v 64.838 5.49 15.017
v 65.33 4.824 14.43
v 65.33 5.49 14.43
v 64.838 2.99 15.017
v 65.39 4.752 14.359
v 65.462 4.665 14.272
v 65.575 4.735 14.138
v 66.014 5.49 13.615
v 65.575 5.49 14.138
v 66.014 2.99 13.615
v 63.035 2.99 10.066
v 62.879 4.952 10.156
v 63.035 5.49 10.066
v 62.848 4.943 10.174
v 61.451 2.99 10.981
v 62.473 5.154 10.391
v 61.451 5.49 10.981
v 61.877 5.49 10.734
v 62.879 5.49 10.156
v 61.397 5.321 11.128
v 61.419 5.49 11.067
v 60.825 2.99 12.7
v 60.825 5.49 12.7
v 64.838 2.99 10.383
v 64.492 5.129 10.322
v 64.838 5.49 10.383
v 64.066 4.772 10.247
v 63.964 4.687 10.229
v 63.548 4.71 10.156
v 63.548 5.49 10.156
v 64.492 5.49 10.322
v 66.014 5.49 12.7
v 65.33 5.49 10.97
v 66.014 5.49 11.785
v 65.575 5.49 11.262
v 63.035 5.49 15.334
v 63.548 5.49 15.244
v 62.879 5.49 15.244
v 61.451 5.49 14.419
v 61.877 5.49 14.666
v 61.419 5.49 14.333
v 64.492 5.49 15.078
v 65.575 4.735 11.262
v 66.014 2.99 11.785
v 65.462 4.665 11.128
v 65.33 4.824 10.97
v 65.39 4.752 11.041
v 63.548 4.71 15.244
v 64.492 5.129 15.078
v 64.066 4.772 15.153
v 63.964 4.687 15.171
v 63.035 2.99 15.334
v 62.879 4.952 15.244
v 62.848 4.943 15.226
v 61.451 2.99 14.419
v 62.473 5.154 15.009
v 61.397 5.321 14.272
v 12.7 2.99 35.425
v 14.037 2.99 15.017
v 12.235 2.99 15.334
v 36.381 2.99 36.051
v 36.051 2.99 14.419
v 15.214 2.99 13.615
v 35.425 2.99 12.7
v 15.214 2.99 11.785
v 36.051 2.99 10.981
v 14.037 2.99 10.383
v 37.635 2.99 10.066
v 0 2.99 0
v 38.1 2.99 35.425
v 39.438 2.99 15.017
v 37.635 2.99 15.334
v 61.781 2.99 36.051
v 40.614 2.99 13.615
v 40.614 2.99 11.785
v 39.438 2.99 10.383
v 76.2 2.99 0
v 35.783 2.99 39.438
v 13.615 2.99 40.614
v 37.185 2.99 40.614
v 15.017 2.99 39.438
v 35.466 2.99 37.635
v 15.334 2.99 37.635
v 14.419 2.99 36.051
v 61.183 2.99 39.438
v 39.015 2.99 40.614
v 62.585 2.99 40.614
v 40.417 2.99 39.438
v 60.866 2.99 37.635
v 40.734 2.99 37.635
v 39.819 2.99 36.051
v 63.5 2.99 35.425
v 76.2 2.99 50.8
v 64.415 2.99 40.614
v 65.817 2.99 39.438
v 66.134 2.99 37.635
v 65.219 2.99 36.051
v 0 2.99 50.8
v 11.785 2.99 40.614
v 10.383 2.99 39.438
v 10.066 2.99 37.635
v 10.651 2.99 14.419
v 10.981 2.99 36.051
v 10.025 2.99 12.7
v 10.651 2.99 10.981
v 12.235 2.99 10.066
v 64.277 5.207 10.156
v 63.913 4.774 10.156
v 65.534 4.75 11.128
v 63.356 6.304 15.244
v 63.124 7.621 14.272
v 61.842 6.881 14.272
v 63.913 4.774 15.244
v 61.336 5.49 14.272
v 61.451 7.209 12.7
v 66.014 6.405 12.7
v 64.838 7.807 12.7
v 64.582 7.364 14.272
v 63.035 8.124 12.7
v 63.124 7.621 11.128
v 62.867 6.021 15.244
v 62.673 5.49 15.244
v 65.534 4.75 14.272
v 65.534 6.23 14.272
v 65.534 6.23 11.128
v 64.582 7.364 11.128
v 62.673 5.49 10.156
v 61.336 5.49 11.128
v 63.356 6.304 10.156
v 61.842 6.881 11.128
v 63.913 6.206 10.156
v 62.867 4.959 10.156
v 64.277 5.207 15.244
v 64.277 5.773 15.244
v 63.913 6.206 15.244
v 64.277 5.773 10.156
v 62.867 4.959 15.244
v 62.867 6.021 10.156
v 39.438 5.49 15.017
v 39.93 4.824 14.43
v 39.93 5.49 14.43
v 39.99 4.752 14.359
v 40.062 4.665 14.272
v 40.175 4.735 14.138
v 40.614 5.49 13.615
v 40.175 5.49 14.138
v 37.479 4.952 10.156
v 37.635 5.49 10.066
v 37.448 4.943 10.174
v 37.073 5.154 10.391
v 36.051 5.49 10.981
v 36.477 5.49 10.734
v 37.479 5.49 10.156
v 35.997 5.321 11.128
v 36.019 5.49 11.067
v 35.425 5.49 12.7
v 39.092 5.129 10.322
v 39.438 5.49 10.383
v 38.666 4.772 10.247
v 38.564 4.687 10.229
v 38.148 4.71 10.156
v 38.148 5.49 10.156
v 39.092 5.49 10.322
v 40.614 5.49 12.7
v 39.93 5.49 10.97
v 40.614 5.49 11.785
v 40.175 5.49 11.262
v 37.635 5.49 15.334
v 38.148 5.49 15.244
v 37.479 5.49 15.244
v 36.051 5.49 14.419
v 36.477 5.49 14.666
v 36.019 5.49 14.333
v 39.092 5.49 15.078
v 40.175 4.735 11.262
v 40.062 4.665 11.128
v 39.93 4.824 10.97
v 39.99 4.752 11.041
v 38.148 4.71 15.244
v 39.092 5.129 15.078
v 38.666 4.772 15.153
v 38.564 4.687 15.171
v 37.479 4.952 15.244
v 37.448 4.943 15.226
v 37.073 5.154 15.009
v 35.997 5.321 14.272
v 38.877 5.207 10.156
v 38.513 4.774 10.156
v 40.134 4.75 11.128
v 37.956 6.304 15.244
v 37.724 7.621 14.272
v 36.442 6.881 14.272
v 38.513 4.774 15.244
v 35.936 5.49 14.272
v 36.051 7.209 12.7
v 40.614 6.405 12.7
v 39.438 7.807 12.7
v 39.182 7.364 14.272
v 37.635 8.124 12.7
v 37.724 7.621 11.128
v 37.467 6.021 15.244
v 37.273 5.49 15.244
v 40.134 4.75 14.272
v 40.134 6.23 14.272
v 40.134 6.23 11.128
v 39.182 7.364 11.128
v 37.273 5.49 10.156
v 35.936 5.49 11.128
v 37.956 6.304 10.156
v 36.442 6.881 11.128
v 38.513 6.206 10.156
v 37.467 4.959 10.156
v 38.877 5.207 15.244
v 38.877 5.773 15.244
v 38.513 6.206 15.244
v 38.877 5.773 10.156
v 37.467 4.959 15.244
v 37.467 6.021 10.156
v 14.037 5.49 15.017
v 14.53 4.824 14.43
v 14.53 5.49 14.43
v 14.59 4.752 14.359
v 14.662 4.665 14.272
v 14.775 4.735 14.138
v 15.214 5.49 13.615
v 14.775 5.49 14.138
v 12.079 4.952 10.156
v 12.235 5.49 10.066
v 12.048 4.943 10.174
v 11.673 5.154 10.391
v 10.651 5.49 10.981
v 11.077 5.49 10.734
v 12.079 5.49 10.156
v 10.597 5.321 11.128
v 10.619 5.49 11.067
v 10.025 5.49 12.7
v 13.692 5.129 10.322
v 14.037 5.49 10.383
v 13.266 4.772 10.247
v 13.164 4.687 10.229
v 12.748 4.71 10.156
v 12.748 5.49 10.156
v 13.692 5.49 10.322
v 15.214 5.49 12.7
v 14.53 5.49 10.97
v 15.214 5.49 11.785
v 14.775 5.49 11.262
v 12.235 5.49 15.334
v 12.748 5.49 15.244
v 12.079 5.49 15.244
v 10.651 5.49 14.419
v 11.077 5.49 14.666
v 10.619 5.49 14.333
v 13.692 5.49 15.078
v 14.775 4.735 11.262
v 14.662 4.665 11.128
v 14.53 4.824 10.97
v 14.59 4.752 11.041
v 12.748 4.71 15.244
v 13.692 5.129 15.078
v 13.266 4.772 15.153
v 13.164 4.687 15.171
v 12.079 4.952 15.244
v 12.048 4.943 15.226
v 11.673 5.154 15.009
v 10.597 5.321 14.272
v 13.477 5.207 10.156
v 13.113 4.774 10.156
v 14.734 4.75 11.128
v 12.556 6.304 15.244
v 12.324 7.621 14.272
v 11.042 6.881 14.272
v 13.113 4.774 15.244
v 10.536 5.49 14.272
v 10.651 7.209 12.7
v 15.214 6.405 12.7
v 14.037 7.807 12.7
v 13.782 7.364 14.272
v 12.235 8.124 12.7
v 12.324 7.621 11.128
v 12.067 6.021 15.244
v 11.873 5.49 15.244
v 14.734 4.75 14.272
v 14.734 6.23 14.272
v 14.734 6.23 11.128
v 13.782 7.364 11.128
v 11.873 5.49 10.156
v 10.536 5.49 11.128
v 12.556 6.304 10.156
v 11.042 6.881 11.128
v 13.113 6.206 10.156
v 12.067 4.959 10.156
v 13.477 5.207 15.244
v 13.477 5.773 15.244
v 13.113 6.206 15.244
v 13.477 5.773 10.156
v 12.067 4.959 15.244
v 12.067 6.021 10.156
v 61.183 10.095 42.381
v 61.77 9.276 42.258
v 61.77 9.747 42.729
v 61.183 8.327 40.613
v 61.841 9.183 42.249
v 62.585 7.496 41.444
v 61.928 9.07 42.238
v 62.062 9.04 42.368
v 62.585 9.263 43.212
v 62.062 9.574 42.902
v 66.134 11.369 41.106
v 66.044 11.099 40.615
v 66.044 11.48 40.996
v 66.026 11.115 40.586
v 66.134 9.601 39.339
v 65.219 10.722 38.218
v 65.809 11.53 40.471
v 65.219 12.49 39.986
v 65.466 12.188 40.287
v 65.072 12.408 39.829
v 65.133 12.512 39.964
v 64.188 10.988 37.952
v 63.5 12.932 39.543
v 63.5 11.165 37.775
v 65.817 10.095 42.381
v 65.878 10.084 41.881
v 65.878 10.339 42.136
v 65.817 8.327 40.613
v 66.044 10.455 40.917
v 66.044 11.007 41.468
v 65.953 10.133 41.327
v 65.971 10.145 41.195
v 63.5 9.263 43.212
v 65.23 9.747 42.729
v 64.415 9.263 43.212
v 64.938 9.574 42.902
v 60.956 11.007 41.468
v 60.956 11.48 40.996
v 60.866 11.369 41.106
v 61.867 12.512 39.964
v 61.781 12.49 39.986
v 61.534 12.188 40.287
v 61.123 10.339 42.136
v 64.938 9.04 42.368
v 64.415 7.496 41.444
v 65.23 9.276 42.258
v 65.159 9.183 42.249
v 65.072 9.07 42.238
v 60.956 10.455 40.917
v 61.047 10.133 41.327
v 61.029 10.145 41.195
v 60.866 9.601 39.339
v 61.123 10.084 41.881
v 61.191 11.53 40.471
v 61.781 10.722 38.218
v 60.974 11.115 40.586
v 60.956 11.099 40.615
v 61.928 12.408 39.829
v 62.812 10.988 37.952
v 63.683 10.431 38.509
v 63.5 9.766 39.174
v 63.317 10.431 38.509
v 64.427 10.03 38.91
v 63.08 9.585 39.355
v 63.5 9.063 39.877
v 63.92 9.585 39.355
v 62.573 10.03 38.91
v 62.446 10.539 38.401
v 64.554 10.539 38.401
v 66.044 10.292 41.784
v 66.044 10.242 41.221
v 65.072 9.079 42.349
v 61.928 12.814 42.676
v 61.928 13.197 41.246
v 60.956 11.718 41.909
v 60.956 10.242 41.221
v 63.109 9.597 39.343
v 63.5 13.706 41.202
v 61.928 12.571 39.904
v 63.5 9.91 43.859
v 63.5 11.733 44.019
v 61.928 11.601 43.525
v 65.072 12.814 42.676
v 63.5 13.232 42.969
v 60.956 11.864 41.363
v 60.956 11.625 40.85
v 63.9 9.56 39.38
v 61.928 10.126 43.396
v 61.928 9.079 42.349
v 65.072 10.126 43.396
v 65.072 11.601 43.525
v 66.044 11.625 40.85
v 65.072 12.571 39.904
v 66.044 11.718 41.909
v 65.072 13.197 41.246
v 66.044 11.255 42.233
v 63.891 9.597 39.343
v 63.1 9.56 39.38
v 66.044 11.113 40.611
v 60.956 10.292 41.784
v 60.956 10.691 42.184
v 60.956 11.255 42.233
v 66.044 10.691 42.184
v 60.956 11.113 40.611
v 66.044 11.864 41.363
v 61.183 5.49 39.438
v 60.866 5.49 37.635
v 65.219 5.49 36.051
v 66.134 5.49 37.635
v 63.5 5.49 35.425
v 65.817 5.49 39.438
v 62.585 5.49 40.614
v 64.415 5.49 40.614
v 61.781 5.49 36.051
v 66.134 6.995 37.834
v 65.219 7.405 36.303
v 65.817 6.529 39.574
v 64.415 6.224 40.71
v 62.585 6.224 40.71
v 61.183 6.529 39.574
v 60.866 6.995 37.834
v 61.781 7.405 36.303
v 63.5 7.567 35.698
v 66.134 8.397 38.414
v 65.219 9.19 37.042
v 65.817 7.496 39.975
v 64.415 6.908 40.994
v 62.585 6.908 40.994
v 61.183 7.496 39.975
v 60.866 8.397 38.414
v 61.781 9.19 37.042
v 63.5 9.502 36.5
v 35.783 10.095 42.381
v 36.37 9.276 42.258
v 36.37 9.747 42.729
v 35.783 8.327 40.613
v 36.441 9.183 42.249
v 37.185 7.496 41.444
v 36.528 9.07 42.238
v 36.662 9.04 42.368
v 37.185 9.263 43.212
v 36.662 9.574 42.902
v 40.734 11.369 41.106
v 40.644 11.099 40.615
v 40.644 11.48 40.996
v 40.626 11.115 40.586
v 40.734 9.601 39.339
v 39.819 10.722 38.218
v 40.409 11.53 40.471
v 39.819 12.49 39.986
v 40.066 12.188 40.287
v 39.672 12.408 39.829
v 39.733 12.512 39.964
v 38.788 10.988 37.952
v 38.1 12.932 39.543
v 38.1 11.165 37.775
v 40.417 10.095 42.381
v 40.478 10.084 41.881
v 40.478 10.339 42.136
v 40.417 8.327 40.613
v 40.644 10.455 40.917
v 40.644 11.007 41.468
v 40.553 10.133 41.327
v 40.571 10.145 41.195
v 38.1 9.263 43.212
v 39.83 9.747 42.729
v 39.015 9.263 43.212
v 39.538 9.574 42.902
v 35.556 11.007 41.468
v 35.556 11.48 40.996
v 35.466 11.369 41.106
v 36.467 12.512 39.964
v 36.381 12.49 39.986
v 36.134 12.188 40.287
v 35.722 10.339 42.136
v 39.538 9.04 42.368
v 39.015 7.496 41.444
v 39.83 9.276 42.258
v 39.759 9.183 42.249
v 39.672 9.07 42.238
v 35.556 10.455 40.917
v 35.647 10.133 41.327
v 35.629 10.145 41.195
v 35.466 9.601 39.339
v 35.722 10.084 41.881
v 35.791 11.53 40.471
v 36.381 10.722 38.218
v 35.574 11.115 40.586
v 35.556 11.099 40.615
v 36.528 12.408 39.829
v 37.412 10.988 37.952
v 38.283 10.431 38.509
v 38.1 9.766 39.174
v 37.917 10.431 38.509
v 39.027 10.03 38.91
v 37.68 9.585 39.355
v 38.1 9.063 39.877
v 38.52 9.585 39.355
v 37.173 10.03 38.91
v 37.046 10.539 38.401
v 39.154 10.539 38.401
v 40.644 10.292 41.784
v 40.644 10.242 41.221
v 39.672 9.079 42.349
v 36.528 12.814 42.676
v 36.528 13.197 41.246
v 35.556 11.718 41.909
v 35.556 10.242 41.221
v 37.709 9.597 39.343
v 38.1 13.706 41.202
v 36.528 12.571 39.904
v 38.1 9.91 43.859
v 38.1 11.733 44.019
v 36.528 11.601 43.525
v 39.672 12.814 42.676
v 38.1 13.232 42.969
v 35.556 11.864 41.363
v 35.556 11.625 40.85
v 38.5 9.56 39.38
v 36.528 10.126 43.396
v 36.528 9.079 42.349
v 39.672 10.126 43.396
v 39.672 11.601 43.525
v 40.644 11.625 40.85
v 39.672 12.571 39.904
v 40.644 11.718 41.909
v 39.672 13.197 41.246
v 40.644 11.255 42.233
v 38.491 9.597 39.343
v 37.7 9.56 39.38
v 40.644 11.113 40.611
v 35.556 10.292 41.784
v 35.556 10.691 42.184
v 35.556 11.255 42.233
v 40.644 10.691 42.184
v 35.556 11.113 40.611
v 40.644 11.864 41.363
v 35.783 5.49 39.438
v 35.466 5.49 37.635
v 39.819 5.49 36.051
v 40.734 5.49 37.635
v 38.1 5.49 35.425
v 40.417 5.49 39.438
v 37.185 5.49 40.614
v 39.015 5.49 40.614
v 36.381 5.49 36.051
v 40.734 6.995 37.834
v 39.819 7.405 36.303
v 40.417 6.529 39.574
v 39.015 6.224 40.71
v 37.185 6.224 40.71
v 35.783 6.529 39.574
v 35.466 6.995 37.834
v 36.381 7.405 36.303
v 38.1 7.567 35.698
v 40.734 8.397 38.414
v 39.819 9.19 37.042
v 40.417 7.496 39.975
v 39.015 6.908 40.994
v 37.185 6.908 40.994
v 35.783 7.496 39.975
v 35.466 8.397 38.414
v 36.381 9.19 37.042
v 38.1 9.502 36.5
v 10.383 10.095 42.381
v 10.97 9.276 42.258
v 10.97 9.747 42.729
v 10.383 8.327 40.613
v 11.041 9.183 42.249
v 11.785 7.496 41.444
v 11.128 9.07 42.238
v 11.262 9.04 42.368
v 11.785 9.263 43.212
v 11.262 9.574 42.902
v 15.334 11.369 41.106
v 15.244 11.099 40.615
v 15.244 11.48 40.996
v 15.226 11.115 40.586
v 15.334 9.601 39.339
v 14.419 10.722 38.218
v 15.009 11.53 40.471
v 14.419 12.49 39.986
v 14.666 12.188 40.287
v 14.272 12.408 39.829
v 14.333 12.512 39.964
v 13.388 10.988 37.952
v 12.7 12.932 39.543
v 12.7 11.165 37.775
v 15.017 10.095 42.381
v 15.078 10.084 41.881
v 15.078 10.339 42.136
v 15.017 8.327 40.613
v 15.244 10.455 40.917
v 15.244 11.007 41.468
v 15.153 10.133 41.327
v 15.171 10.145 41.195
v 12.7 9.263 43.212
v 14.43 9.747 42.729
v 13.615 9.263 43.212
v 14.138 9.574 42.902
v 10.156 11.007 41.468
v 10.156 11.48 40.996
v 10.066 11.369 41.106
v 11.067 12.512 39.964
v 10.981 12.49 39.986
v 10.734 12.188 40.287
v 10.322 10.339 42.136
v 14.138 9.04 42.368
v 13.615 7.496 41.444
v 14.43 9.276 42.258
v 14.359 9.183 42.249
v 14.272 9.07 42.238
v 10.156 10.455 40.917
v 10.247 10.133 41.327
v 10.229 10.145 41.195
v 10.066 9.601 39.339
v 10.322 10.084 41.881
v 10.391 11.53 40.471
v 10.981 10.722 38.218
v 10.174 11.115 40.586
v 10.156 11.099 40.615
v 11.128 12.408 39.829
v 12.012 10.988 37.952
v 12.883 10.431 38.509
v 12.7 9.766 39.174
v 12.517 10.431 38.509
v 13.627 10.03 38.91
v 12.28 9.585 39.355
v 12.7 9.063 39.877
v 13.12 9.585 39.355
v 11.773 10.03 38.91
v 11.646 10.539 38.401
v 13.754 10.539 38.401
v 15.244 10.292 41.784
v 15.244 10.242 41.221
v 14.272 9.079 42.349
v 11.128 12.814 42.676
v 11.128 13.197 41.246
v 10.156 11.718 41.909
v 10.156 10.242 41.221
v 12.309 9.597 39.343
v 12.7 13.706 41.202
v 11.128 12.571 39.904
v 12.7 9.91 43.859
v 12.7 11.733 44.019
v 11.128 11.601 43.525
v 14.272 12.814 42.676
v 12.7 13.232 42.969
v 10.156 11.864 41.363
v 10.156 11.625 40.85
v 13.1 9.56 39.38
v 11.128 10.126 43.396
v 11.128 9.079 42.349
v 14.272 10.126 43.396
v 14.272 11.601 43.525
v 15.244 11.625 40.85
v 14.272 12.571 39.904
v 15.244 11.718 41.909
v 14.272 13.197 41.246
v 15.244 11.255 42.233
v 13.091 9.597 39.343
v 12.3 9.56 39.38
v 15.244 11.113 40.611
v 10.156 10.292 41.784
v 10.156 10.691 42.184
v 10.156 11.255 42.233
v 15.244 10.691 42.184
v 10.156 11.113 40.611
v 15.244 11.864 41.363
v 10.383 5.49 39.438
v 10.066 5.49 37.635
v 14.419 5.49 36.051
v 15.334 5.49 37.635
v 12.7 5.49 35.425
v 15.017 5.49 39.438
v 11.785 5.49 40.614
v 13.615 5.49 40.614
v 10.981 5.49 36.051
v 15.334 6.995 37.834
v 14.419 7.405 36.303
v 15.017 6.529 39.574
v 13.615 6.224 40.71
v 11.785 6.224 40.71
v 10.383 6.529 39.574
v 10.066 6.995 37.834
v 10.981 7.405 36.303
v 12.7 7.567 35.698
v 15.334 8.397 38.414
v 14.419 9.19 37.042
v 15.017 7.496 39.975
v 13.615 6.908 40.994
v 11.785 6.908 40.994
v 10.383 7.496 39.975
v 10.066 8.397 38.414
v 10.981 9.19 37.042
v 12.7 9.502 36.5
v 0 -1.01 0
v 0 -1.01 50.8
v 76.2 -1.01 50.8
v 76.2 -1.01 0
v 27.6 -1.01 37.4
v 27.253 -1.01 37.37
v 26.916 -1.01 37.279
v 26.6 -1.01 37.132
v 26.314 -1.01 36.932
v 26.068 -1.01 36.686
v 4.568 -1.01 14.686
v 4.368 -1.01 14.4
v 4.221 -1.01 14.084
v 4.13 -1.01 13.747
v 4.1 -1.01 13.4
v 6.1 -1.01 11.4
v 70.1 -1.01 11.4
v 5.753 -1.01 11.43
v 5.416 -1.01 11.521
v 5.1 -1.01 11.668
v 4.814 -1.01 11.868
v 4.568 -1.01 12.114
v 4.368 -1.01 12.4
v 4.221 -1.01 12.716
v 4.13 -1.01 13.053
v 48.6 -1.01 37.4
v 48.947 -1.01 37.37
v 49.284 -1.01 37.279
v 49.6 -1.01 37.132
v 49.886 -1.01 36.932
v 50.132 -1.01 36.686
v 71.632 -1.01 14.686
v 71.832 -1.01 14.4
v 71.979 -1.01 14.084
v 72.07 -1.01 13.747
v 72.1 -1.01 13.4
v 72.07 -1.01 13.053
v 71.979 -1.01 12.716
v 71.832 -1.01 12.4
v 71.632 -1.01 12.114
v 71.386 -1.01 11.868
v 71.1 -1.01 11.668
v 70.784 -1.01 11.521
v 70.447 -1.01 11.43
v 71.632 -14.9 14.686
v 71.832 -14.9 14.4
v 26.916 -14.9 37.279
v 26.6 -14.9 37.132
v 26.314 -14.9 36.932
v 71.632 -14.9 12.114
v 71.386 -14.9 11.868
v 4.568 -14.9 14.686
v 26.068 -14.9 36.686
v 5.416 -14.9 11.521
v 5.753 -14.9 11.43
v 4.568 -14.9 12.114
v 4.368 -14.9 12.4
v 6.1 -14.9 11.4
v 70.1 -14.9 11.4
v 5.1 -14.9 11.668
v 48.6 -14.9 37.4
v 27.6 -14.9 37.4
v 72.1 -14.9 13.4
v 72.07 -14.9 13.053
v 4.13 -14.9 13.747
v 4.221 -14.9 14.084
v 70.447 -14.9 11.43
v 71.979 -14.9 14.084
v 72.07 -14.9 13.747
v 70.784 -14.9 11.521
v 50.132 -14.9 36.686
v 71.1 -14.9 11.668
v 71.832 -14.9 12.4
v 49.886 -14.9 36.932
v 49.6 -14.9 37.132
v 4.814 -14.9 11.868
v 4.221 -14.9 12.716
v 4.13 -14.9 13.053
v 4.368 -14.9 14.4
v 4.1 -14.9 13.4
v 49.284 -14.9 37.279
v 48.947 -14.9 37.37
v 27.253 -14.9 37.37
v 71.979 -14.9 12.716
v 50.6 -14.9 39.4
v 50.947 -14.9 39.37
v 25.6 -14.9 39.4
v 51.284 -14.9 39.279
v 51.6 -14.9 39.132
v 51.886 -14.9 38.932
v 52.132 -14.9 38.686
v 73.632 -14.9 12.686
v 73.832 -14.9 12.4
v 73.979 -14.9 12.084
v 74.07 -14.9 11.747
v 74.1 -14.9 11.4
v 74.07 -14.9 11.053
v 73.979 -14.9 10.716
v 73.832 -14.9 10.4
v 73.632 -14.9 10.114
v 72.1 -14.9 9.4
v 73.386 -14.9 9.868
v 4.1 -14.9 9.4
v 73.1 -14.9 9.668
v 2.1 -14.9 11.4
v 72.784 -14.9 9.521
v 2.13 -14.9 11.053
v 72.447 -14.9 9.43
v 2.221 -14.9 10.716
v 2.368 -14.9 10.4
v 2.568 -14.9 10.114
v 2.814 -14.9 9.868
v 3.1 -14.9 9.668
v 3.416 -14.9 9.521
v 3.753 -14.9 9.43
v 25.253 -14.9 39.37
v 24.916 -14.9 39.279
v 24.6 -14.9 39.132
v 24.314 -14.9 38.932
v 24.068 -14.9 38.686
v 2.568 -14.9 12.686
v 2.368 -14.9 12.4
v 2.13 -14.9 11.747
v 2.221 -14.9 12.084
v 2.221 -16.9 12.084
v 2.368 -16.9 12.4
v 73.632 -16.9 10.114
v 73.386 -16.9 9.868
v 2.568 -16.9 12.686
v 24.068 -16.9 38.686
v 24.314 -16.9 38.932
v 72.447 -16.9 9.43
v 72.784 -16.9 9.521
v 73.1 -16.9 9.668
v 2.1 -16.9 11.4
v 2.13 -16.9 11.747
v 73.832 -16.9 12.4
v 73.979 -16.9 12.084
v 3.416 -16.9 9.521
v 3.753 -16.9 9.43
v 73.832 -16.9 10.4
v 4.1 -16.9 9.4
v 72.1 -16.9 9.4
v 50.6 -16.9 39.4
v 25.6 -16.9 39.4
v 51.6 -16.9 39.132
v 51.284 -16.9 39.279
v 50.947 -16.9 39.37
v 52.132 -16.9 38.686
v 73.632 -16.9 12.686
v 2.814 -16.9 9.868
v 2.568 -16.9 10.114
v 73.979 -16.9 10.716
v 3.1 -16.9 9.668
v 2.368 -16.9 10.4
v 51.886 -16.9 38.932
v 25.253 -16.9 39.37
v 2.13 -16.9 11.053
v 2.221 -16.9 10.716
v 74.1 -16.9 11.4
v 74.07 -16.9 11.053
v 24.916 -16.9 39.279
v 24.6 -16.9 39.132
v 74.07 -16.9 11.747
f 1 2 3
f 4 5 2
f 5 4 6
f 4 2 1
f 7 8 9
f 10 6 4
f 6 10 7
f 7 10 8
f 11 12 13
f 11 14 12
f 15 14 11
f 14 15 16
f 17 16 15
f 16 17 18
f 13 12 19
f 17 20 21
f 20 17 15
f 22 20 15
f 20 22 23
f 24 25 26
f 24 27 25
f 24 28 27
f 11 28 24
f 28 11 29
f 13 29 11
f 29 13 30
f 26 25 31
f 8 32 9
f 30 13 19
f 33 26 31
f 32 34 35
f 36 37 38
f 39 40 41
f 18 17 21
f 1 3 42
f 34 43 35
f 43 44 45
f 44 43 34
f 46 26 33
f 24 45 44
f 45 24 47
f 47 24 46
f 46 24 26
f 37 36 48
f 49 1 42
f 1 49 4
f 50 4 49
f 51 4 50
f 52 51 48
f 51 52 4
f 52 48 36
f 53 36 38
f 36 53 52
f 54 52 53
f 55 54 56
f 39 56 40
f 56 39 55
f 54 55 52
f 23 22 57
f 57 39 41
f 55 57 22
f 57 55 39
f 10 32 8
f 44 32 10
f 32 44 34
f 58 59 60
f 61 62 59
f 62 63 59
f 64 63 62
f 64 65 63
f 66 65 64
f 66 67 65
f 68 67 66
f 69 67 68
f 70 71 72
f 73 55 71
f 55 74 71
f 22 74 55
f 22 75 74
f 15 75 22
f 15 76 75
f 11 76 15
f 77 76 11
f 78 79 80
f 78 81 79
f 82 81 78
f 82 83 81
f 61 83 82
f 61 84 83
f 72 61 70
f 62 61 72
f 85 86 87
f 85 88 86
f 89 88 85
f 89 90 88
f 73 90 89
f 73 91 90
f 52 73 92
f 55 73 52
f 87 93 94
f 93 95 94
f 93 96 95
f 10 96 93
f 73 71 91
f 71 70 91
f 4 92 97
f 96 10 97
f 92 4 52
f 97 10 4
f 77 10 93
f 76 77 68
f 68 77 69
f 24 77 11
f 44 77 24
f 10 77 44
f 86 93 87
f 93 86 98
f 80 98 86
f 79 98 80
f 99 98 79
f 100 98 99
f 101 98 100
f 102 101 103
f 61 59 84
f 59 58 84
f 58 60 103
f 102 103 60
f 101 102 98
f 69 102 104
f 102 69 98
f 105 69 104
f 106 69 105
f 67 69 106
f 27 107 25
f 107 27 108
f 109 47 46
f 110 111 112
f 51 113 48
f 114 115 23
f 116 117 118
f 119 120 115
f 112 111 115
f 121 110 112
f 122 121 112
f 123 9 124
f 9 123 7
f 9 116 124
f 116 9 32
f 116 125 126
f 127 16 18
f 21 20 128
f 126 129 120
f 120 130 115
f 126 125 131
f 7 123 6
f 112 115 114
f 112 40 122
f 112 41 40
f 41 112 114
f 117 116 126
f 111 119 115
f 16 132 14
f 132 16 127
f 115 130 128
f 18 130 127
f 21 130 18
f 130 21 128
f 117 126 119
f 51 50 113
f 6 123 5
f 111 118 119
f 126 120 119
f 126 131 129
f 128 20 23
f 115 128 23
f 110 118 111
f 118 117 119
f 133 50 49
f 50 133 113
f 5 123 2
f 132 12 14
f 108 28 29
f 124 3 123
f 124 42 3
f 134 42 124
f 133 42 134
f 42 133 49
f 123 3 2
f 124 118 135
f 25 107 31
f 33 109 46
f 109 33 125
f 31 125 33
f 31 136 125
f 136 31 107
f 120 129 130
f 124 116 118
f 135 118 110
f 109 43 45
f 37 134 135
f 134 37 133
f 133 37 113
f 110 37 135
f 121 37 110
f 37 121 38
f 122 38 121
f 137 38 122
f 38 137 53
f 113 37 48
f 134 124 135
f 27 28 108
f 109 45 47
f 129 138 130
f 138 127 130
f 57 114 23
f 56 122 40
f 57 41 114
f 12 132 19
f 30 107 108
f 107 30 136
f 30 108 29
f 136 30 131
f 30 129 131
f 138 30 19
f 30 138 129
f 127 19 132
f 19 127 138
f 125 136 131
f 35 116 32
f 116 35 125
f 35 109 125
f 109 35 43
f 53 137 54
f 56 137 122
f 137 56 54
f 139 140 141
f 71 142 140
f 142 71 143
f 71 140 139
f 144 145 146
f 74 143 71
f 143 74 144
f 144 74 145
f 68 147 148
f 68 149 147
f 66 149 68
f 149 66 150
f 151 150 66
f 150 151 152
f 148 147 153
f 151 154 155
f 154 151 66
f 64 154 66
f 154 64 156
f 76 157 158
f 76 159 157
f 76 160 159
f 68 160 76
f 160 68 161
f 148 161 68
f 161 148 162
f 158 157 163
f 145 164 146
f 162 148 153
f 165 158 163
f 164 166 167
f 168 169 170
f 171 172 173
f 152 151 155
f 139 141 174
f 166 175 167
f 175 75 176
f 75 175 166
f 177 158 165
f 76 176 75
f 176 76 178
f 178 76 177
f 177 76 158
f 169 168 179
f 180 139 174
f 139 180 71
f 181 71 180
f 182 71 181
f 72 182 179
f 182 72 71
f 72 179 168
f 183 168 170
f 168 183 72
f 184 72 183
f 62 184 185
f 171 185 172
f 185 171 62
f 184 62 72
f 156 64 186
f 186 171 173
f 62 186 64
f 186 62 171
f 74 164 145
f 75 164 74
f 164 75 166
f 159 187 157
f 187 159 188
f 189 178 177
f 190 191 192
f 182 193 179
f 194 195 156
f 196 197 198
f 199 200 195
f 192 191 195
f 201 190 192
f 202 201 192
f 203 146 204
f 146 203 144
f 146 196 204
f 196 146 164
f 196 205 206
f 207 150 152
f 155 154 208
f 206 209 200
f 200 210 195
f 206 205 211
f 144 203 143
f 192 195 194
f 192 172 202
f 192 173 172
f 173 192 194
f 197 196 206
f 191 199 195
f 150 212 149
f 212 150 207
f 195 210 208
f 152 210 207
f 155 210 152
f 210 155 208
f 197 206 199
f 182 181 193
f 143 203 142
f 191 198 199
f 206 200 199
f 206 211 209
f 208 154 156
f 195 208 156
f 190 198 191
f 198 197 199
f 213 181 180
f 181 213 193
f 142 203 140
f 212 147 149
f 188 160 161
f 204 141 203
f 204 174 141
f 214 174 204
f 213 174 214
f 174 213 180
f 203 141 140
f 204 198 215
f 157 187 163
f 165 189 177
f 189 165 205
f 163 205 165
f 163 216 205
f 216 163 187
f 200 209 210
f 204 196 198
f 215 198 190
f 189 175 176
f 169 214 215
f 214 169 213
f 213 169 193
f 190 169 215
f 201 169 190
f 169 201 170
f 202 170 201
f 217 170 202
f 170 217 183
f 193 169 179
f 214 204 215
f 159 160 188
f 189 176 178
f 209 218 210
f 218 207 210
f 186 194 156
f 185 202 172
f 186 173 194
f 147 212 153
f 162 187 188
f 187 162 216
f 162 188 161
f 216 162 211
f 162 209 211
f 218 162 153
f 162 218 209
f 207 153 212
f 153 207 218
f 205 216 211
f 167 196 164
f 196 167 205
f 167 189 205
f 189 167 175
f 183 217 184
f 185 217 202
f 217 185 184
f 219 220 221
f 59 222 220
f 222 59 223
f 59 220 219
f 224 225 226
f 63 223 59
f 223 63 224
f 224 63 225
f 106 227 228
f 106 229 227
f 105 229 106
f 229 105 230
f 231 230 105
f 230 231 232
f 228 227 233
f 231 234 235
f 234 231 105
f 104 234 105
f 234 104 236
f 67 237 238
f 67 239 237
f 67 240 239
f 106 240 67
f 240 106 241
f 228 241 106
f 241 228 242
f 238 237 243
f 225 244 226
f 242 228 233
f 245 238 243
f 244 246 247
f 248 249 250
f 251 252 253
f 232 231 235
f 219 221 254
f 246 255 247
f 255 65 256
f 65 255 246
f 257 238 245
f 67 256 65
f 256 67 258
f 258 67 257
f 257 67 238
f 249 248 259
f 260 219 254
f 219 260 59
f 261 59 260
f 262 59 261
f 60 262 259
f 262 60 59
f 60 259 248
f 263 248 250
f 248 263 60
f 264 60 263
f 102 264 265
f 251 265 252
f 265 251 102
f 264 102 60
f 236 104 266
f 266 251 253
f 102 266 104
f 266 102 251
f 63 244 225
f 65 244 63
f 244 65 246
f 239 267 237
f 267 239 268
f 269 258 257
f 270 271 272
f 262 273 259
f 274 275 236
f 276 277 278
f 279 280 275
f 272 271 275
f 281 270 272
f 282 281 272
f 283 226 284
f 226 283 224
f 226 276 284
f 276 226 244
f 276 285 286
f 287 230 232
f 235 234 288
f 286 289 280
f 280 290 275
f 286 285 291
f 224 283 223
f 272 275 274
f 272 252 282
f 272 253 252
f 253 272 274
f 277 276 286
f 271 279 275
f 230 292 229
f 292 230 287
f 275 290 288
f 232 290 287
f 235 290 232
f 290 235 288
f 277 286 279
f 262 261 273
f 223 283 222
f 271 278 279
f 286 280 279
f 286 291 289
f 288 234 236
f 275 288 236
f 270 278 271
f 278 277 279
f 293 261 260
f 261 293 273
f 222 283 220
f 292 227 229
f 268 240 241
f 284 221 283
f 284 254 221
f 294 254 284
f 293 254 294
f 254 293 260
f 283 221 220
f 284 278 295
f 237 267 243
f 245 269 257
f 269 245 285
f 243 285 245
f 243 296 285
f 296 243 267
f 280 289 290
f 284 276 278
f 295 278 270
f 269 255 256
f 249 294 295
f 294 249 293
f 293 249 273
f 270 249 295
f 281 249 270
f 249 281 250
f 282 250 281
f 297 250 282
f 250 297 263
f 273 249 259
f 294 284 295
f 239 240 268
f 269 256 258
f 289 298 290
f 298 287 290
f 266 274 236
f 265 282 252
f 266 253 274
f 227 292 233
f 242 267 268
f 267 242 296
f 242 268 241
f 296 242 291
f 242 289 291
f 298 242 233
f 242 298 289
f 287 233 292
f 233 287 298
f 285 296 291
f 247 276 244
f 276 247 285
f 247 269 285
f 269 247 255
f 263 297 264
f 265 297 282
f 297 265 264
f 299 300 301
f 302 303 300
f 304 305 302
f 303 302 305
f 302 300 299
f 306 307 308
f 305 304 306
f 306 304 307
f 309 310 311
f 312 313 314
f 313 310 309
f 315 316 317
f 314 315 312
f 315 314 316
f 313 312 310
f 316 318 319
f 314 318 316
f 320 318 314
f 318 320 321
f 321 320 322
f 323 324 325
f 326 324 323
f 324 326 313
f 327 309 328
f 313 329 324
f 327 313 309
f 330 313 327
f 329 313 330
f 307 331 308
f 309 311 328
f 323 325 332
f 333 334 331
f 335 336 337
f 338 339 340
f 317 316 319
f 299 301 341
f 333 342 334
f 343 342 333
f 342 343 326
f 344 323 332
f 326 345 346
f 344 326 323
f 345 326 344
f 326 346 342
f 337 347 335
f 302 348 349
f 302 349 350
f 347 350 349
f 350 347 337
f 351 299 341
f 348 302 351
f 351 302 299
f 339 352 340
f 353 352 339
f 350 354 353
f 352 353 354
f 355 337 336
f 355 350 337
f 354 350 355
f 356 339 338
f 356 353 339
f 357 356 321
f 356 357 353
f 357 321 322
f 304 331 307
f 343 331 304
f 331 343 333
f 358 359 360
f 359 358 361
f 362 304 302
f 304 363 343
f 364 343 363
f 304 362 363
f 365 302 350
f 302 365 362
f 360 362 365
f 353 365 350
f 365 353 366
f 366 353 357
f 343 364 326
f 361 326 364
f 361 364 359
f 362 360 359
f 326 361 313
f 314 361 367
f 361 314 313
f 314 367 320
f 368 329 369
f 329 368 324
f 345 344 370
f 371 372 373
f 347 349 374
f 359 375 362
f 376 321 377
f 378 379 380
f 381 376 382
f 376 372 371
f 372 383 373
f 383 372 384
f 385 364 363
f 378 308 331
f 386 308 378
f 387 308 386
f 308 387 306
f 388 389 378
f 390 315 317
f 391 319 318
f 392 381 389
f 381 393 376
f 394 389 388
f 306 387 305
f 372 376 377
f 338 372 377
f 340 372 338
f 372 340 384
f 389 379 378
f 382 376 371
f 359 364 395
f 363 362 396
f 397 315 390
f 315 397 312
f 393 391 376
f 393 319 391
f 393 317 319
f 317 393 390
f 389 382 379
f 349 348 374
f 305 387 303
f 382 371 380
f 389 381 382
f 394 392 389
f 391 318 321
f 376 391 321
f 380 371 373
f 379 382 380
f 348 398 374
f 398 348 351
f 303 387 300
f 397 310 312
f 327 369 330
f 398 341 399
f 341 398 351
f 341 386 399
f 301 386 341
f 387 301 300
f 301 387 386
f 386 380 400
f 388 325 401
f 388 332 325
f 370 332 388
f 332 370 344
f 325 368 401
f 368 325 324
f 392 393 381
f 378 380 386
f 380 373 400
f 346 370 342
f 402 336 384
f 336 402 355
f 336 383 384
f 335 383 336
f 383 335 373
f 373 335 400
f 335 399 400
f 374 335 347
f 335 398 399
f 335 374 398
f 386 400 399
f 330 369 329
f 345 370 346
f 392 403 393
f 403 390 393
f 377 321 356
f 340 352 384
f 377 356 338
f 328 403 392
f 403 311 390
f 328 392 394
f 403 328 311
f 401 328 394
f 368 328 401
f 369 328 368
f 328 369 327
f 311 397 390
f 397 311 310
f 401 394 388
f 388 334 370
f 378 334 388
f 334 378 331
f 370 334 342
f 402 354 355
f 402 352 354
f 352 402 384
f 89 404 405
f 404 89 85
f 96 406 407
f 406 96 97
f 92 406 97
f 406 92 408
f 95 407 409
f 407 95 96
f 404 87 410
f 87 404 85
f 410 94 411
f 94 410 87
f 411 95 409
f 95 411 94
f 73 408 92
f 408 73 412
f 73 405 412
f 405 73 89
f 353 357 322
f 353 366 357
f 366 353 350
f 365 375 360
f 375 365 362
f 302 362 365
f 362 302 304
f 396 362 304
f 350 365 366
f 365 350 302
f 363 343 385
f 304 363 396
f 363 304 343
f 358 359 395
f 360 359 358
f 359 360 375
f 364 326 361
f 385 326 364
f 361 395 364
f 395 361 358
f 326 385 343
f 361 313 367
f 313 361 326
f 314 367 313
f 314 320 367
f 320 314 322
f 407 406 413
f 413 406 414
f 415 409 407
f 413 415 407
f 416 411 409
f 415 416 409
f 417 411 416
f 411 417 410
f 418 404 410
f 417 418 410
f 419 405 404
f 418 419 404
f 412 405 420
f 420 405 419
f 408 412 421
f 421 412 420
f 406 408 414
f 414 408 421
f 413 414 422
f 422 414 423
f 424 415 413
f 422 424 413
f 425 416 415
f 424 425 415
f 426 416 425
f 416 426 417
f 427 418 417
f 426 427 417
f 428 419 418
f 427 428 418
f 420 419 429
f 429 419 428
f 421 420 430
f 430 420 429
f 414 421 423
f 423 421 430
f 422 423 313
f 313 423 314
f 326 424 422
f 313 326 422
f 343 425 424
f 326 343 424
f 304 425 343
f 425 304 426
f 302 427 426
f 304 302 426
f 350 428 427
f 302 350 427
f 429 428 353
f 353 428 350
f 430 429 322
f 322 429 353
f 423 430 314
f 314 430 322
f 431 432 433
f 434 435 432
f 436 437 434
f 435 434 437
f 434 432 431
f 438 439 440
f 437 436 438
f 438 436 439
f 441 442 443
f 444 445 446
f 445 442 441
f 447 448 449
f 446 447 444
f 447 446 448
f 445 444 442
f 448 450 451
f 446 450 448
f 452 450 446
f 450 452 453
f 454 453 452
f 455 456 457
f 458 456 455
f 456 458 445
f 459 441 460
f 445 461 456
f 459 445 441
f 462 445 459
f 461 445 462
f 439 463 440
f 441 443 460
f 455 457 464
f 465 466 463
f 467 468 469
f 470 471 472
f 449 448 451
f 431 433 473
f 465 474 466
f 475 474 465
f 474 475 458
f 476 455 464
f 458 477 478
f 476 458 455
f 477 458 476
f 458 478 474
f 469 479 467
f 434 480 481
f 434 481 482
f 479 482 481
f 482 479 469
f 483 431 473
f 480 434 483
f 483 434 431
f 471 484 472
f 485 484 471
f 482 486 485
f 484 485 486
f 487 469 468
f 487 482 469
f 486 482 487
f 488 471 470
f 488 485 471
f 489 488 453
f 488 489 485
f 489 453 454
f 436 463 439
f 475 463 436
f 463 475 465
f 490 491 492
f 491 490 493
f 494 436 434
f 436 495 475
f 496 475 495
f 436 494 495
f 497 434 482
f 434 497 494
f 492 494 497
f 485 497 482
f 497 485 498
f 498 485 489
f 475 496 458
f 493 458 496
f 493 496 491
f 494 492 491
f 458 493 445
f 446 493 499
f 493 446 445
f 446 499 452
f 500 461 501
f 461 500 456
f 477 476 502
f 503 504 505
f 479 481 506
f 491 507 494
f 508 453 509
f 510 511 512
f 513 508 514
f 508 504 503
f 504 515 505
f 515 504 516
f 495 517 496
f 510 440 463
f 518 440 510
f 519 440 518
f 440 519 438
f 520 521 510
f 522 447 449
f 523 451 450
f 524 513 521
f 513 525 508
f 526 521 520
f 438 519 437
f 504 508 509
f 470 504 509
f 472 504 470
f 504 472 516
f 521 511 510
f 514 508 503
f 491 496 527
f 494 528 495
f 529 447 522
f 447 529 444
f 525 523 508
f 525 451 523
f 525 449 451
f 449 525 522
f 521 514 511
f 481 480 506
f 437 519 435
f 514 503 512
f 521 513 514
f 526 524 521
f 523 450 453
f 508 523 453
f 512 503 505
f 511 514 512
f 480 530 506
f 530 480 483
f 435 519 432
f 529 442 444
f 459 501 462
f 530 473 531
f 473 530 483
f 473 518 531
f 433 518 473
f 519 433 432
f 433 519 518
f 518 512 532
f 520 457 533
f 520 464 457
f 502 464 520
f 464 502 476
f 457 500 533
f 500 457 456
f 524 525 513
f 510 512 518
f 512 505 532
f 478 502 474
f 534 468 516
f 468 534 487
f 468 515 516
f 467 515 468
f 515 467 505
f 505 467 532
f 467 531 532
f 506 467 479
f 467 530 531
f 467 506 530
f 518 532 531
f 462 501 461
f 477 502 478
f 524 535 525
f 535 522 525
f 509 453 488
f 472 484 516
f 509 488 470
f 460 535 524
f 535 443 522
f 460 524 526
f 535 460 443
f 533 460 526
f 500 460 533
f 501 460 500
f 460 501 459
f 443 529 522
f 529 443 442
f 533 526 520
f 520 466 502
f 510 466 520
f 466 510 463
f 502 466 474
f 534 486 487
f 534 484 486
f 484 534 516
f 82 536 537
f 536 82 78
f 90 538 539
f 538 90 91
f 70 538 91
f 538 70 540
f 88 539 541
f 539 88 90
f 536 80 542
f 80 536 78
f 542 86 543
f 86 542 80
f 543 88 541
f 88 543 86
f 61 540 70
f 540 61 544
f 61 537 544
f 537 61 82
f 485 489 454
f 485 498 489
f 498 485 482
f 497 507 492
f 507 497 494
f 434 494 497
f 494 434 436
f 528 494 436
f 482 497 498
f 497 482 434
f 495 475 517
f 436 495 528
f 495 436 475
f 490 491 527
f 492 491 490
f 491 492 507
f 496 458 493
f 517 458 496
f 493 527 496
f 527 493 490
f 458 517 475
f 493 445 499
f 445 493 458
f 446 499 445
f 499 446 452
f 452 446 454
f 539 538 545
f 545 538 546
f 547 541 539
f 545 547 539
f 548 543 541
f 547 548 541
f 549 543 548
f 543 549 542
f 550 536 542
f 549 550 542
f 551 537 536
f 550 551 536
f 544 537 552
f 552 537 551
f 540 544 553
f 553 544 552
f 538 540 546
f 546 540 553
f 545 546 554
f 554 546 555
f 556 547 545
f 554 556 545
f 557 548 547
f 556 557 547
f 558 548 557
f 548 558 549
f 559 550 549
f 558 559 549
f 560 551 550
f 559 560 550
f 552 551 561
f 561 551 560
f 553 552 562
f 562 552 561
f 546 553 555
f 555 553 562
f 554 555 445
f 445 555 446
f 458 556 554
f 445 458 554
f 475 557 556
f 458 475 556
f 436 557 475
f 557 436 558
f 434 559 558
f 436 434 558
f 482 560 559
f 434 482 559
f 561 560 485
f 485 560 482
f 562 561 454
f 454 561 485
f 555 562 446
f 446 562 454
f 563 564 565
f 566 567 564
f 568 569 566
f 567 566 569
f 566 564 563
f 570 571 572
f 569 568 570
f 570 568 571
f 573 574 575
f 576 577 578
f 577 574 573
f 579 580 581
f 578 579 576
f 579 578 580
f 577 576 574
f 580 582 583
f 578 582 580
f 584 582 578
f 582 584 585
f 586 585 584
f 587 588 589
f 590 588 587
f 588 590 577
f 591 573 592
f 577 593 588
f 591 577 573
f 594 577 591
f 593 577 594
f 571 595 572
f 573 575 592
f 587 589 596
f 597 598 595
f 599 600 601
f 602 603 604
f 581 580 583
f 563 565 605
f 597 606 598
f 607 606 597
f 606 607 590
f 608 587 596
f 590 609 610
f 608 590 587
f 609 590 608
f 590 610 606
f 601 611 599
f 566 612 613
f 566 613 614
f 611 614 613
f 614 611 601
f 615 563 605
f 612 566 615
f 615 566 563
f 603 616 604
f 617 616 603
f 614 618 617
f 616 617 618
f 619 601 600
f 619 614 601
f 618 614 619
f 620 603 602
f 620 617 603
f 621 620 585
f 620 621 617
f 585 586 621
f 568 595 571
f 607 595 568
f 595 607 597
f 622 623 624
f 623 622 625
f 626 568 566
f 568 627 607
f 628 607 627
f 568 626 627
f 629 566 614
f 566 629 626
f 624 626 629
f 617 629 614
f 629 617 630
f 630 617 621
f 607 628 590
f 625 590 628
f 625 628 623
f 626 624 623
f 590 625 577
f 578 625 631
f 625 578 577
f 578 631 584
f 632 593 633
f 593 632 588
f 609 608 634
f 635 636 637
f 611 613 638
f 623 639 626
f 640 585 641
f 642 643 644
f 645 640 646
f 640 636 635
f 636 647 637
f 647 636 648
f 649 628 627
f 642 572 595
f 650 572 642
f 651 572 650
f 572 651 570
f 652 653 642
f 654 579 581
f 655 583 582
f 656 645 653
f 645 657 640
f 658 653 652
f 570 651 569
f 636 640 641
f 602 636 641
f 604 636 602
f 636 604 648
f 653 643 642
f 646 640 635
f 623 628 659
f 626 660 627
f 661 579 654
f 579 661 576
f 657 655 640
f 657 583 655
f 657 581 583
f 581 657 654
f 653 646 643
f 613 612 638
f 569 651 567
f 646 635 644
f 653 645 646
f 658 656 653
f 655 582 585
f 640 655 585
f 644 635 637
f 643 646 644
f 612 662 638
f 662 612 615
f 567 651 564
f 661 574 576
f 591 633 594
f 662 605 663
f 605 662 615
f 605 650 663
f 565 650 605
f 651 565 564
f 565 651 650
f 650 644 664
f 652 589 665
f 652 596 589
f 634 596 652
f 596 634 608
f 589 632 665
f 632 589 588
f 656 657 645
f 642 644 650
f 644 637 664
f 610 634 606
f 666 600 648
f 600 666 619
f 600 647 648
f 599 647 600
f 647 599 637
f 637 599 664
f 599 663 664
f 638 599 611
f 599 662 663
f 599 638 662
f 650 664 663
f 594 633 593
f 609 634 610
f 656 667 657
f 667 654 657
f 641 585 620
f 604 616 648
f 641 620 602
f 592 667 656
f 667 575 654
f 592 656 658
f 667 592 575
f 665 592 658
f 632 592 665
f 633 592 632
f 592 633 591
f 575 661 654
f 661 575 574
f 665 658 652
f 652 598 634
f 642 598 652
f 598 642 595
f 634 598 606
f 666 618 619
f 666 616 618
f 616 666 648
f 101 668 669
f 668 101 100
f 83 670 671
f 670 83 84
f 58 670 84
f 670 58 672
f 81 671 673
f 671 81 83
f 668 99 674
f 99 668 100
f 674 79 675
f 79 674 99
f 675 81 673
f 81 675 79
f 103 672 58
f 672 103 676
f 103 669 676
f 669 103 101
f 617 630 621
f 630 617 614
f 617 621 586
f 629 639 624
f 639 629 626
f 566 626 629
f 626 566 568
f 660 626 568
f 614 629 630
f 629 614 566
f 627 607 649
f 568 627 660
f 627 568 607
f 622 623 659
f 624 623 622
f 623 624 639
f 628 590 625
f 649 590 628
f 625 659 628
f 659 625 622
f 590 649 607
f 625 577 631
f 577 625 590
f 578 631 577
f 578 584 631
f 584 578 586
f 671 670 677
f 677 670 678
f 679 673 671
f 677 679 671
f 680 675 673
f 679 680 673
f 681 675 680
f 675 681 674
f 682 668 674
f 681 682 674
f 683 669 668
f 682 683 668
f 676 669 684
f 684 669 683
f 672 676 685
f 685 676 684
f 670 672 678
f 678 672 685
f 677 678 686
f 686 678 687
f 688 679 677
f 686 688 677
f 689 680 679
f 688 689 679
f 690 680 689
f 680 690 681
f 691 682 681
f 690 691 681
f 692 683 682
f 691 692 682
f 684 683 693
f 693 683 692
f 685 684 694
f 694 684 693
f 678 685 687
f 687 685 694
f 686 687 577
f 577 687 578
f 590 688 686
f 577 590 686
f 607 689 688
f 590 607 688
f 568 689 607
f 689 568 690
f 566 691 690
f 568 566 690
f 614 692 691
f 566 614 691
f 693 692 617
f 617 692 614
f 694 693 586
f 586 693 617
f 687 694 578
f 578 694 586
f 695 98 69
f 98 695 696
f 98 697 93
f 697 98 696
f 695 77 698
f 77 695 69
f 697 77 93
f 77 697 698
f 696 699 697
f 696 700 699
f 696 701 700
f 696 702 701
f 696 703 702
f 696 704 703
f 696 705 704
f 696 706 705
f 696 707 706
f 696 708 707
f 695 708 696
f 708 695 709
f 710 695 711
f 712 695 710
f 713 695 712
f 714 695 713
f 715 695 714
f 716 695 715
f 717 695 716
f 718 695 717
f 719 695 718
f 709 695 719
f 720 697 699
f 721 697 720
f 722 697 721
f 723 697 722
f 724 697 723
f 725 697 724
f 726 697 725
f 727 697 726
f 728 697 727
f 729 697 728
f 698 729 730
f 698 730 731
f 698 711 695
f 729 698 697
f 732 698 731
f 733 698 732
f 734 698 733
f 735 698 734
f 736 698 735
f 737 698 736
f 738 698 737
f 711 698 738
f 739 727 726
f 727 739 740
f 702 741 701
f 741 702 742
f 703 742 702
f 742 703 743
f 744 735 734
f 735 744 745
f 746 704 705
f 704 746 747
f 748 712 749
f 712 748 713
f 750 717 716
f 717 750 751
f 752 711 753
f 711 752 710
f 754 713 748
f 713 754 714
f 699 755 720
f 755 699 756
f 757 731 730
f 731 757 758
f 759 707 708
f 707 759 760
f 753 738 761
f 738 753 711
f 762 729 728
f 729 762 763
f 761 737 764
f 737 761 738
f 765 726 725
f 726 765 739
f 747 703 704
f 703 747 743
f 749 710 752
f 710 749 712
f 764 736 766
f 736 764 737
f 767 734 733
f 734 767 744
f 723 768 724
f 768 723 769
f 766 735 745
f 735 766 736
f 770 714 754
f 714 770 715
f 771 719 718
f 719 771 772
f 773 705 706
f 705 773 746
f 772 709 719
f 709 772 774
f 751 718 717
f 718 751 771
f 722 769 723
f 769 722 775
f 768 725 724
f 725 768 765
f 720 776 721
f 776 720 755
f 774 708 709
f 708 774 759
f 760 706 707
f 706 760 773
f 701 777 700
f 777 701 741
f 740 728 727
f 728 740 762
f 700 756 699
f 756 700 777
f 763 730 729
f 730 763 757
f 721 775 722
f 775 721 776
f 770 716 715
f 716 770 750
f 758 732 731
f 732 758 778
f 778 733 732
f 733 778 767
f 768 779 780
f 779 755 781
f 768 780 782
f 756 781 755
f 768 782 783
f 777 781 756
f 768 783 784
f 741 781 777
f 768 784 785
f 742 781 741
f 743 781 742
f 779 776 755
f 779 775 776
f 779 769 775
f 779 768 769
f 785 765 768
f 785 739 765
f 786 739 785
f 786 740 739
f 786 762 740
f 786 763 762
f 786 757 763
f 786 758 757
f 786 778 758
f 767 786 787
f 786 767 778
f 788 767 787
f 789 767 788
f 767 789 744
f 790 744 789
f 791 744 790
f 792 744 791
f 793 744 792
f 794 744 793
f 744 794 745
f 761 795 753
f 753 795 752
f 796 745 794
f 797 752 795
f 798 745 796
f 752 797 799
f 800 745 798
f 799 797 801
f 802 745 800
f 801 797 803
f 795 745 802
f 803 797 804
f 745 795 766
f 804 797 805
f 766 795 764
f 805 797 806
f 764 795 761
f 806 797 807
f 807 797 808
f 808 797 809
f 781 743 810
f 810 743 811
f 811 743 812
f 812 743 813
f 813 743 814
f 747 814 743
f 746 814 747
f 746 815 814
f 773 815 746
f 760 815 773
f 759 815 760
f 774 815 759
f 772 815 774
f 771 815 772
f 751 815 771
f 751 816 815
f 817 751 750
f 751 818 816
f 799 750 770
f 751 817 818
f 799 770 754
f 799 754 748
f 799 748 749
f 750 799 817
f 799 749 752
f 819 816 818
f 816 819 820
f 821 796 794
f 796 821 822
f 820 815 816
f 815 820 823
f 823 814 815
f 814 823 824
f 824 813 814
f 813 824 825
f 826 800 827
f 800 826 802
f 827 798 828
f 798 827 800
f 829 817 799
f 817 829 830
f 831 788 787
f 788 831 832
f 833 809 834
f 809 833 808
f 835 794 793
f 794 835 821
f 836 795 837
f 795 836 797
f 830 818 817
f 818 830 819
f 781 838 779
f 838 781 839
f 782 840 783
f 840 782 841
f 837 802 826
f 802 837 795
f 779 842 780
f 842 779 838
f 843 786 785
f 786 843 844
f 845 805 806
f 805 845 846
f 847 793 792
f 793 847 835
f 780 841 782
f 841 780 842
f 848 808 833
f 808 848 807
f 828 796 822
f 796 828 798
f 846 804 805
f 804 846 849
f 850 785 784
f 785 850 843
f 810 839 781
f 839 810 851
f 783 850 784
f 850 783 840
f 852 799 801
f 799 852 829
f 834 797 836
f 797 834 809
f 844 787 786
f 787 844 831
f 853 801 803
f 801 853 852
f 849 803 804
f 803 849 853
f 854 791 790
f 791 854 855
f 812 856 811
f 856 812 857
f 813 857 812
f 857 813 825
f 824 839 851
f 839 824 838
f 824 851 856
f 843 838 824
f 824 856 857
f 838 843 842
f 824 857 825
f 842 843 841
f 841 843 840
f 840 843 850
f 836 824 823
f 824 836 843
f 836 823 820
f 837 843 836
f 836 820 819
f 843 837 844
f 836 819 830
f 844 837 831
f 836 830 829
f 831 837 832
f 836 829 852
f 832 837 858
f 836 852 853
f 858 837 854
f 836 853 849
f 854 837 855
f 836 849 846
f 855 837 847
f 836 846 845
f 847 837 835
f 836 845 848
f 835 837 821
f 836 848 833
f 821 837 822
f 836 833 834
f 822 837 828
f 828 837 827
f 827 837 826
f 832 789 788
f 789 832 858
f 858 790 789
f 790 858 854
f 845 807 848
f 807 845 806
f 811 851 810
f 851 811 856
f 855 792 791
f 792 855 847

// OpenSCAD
// file: Parametric_Pegboard_Base.scad
 // What size are the holes that we'll be going into?  Standard U.S. pegboard holes are 0.25" diameter
 hole_size = 0.25 * 25.4;

 // How far undersized should the pegs be to actually fit in the holes?
 peg_clearance = 0.25;

 // How thick is your pegboard?
 peg_height = 0.125 * 25.4;

 // What angle should the top pegs be bent at?
 peg_angle = 60;

 // Hole spacing.  Standard pegboard holes are 1" on center
 hole_center_to_center = 1 * 25.4;

 // How many rows of pegs?
 peg_rows = 2;

 // How many columns of pegs?
 peg_cols = 2;

 // How thick do you want the base?
 base_depth = 5;

 // ------------------- END PARAMETERS -----------------

//pegboard_base(peg_cols, peg_rows, hole_center_to_center, peg_height, base_depth, hole_size, peg_clearance, peg_angle);

//pegboard_base();

module pegboard_base(
cols = peg_cols,
rows = peg_rows,
spacing = hole_center_to_center,
height = peg_height,
depth = base_depth,
hole_size = hole_size,
clearance = peg_clearance,
angle = peg_angle)

{
    radius = hole_size / 2 - clearance;

    translate([spacing * (cols - 0.5), -depth, spacing / 2])
    rotate([180,180,0])
    {
        translate([-spacing / 2, -depth, -spacing / 2])
        cube([cols * spacing, depth, rows * spacing]);
        peg_grid(cols, rows, spacing, height, radius, angle);
    }
}

module peg_grid(cols, rows, spacing, height, radius, angle)
{
    for(row = [0 : rows - 2])
    {
        translate([0,0, row * spacing])
        peg_row(cols, spacing, height, radius);
    }

    translate([0, 0, (rows - 1) * spacing])
    top_peg_row(cols, spacing, height, radius, angle);
}

module top_peg_row(cols, spacing, height, radius, angle)
{
    peg_row(cols, spacing, height, radius, angle);
}

module peg_row(cols, spacing, height, radius, angle = 0)
{
    for(col = [0 : cols - 1])
    {
        translate([col * spacing, 0, 0])
        if(angle == 0) {
            rounded_peg(radius, height);
        } else {
            top_peg(radius, height, angle);
        }
    }
}

module top_peg(radius, height, angle = 60)
{
    rotate([0, 90, 0])
    {
        // Base peg
        peg(radius, height);

        // Bend
        translate([-2 * radius, height, 0])
        rotate_extrude2(angle = angle)
        translate([2 * radius, 0])
        circle(r = radius);

        // Extended peg
        translate([-2 * radius, height, 0])
        rotate([0,0,angle])
        translate([2 * radius, 0, 0])
        rounded_peg(radius, height);
        }
}

module rounded_peg(radius, height)
{
    peg(radius, height);
    translate([0, height, 0])
    sphere(r = radius);
}

module peg(radius, height)
{
    rotate([-90, 0, 0])
    cylinder(r = radius, h = height);
}

  //-------------- EXTERNAL MODULES -------------------

  // http://forum.openscad.org/rotate-extrude-angle-always-360-td19035.html
  module rotate_extrude2(angle=360, convexity=2, size=1000) {

  module angle_cut(angle=90,size=1000) {
    x = size*cos(angle/2);
    y = size*sin(angle/2);
    translate([0,0,-size])
      linear_extrude(2*size) polygon([[0,0],[x,y],[x,size],[-size,size],[-size,-size],[x,-size],[x,-y]]);
  }

  // support for angle parameter in rotate_extrude was added after release 2015.03
  // Thingiverse customizer is still on 2015.03
  angleSupport = (version_num() > 20150399) ? true : false; // Next openscad releases after 2015.03.xx will have support angle parameter
  // Using angle parameter when possible provides huge speed boost, avoids a difference operation

  if (angleSupport) {
    rotate_extrude(angle=angle,convexity=convexity)
      children();
  } else {
    rotate([0,0,angle/2]) difference() {
      rotate_extrude(convexity=convexity) children();
      angle_cut(angle, size);
    }
  }
}
// file: rounded_trapezoid.scad
$fn = 36;

module rounded_trapezoid(bottom_width, top_width, height, thickness, radius=2) {
  translate([0,thickness,0]) {
    rotate([90,0,0]) {
      hull() {
        // bottom left
        translate([radius, radius,0]) {
          cylinder(h=thickness, r=radius);
        }
        // bottom right
        translate([bottom_width - radius,radius,0]) {
          cylinder(h=thickness, r=radius);
        }
        // top left
        translate([((bottom_width - top_width) / 2) + radius, height - radius,0]) {
          cylinder(h=thickness, r=radius);
        }
        // top right
        translate([top_width + ((bottom_width - top_width) / 2) - radius,height - radius,0]) {
          cylinder(h=thickness, r=radius);
        }
      }
    }
  }
}
// main file
use <rounded_trapezoid.scad>;

// from: https://www.thingiverse.com/thing:2583402
use <Parametric_Pegboard_Base.scad>;

cols = 3;
base_width = 25.4 * cols;
base_height = 24.4 * 2;
corner_radius = 2;

translate([0,-1.01,0]){
  mirror([0,1,0]) {
    pegboard_base(cols, 2, clearance=0.5, height=2.5, angle=45, depth=4);
  }
}

xbottom = 68;
xtop = 25;
lip = 2;
depth = 15;
height = 26;

translate([(base_width - xbottom) / 2,-1 * depth,(base_height - height) / 2]) {
  rounded_trapezoid(bottom_width=xbottom, top_width=xtop, height=height, thickness=depth);
}
translate([(base_width - (xbottom + (lip * 2))) / 2,(-1 * depth) - (lip - 0.1),(base_height - (height + (lip * 2))) / 2]) {
  rounded_trapezoid(bottom_width=(xbottom + (lip * 2)), top_width=xtop + (lip * 2), height=(height + (lip * 2)), thickness=2);
}
